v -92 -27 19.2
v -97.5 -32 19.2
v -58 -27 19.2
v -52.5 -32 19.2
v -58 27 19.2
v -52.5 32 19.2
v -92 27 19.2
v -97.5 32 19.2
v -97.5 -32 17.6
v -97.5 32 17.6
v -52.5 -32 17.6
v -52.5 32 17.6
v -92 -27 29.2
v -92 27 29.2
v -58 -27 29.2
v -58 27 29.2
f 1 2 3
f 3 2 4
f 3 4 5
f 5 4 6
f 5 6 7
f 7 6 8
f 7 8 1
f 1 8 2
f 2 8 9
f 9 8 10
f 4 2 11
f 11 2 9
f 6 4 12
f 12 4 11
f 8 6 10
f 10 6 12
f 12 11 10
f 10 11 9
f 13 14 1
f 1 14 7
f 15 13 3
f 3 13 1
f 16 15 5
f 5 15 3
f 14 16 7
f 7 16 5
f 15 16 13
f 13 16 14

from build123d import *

# Parameters (mm, degrees)
BOSS_EXTRUDE1_START = 18.4
SKETCH1_W           = 45
SKETCH1_H           = 64
BOSS_EXTRUDE1_DEPTH = 0.8
BOSS_EXTRUDE2_START = 24.2
SKETCH2_W           = 34
SKETCH2_H           = 54
BOSS_EXTRUDE2_DEPTH = 5


with BuildPart() as part:
    # Sketch1 → Boss-Extrude1 (new, symmetric)
    with BuildSketch(Plane.XY.offset(BOSS_EXTRUDE1_START)):
        with Locations((-75, 0)):
            Rectangle(SKETCH1_W, SKETCH1_H)
    extrude(amount=BOSS_EXTRUDE1_DEPTH, both=True)

    # Sketch2 → Boss-Extrude2 (add, symmetric)
    with BuildSketch(Plane.XY.offset(BOSS_EXTRUDE2_START)):
        with Locations((-75, 0)):
            Rectangle(SKETCH2_W, SKETCH2_H)
    extrude(amount=BOSS_EXTRUDE2_DEPTH, both=True)


solid = part.part
